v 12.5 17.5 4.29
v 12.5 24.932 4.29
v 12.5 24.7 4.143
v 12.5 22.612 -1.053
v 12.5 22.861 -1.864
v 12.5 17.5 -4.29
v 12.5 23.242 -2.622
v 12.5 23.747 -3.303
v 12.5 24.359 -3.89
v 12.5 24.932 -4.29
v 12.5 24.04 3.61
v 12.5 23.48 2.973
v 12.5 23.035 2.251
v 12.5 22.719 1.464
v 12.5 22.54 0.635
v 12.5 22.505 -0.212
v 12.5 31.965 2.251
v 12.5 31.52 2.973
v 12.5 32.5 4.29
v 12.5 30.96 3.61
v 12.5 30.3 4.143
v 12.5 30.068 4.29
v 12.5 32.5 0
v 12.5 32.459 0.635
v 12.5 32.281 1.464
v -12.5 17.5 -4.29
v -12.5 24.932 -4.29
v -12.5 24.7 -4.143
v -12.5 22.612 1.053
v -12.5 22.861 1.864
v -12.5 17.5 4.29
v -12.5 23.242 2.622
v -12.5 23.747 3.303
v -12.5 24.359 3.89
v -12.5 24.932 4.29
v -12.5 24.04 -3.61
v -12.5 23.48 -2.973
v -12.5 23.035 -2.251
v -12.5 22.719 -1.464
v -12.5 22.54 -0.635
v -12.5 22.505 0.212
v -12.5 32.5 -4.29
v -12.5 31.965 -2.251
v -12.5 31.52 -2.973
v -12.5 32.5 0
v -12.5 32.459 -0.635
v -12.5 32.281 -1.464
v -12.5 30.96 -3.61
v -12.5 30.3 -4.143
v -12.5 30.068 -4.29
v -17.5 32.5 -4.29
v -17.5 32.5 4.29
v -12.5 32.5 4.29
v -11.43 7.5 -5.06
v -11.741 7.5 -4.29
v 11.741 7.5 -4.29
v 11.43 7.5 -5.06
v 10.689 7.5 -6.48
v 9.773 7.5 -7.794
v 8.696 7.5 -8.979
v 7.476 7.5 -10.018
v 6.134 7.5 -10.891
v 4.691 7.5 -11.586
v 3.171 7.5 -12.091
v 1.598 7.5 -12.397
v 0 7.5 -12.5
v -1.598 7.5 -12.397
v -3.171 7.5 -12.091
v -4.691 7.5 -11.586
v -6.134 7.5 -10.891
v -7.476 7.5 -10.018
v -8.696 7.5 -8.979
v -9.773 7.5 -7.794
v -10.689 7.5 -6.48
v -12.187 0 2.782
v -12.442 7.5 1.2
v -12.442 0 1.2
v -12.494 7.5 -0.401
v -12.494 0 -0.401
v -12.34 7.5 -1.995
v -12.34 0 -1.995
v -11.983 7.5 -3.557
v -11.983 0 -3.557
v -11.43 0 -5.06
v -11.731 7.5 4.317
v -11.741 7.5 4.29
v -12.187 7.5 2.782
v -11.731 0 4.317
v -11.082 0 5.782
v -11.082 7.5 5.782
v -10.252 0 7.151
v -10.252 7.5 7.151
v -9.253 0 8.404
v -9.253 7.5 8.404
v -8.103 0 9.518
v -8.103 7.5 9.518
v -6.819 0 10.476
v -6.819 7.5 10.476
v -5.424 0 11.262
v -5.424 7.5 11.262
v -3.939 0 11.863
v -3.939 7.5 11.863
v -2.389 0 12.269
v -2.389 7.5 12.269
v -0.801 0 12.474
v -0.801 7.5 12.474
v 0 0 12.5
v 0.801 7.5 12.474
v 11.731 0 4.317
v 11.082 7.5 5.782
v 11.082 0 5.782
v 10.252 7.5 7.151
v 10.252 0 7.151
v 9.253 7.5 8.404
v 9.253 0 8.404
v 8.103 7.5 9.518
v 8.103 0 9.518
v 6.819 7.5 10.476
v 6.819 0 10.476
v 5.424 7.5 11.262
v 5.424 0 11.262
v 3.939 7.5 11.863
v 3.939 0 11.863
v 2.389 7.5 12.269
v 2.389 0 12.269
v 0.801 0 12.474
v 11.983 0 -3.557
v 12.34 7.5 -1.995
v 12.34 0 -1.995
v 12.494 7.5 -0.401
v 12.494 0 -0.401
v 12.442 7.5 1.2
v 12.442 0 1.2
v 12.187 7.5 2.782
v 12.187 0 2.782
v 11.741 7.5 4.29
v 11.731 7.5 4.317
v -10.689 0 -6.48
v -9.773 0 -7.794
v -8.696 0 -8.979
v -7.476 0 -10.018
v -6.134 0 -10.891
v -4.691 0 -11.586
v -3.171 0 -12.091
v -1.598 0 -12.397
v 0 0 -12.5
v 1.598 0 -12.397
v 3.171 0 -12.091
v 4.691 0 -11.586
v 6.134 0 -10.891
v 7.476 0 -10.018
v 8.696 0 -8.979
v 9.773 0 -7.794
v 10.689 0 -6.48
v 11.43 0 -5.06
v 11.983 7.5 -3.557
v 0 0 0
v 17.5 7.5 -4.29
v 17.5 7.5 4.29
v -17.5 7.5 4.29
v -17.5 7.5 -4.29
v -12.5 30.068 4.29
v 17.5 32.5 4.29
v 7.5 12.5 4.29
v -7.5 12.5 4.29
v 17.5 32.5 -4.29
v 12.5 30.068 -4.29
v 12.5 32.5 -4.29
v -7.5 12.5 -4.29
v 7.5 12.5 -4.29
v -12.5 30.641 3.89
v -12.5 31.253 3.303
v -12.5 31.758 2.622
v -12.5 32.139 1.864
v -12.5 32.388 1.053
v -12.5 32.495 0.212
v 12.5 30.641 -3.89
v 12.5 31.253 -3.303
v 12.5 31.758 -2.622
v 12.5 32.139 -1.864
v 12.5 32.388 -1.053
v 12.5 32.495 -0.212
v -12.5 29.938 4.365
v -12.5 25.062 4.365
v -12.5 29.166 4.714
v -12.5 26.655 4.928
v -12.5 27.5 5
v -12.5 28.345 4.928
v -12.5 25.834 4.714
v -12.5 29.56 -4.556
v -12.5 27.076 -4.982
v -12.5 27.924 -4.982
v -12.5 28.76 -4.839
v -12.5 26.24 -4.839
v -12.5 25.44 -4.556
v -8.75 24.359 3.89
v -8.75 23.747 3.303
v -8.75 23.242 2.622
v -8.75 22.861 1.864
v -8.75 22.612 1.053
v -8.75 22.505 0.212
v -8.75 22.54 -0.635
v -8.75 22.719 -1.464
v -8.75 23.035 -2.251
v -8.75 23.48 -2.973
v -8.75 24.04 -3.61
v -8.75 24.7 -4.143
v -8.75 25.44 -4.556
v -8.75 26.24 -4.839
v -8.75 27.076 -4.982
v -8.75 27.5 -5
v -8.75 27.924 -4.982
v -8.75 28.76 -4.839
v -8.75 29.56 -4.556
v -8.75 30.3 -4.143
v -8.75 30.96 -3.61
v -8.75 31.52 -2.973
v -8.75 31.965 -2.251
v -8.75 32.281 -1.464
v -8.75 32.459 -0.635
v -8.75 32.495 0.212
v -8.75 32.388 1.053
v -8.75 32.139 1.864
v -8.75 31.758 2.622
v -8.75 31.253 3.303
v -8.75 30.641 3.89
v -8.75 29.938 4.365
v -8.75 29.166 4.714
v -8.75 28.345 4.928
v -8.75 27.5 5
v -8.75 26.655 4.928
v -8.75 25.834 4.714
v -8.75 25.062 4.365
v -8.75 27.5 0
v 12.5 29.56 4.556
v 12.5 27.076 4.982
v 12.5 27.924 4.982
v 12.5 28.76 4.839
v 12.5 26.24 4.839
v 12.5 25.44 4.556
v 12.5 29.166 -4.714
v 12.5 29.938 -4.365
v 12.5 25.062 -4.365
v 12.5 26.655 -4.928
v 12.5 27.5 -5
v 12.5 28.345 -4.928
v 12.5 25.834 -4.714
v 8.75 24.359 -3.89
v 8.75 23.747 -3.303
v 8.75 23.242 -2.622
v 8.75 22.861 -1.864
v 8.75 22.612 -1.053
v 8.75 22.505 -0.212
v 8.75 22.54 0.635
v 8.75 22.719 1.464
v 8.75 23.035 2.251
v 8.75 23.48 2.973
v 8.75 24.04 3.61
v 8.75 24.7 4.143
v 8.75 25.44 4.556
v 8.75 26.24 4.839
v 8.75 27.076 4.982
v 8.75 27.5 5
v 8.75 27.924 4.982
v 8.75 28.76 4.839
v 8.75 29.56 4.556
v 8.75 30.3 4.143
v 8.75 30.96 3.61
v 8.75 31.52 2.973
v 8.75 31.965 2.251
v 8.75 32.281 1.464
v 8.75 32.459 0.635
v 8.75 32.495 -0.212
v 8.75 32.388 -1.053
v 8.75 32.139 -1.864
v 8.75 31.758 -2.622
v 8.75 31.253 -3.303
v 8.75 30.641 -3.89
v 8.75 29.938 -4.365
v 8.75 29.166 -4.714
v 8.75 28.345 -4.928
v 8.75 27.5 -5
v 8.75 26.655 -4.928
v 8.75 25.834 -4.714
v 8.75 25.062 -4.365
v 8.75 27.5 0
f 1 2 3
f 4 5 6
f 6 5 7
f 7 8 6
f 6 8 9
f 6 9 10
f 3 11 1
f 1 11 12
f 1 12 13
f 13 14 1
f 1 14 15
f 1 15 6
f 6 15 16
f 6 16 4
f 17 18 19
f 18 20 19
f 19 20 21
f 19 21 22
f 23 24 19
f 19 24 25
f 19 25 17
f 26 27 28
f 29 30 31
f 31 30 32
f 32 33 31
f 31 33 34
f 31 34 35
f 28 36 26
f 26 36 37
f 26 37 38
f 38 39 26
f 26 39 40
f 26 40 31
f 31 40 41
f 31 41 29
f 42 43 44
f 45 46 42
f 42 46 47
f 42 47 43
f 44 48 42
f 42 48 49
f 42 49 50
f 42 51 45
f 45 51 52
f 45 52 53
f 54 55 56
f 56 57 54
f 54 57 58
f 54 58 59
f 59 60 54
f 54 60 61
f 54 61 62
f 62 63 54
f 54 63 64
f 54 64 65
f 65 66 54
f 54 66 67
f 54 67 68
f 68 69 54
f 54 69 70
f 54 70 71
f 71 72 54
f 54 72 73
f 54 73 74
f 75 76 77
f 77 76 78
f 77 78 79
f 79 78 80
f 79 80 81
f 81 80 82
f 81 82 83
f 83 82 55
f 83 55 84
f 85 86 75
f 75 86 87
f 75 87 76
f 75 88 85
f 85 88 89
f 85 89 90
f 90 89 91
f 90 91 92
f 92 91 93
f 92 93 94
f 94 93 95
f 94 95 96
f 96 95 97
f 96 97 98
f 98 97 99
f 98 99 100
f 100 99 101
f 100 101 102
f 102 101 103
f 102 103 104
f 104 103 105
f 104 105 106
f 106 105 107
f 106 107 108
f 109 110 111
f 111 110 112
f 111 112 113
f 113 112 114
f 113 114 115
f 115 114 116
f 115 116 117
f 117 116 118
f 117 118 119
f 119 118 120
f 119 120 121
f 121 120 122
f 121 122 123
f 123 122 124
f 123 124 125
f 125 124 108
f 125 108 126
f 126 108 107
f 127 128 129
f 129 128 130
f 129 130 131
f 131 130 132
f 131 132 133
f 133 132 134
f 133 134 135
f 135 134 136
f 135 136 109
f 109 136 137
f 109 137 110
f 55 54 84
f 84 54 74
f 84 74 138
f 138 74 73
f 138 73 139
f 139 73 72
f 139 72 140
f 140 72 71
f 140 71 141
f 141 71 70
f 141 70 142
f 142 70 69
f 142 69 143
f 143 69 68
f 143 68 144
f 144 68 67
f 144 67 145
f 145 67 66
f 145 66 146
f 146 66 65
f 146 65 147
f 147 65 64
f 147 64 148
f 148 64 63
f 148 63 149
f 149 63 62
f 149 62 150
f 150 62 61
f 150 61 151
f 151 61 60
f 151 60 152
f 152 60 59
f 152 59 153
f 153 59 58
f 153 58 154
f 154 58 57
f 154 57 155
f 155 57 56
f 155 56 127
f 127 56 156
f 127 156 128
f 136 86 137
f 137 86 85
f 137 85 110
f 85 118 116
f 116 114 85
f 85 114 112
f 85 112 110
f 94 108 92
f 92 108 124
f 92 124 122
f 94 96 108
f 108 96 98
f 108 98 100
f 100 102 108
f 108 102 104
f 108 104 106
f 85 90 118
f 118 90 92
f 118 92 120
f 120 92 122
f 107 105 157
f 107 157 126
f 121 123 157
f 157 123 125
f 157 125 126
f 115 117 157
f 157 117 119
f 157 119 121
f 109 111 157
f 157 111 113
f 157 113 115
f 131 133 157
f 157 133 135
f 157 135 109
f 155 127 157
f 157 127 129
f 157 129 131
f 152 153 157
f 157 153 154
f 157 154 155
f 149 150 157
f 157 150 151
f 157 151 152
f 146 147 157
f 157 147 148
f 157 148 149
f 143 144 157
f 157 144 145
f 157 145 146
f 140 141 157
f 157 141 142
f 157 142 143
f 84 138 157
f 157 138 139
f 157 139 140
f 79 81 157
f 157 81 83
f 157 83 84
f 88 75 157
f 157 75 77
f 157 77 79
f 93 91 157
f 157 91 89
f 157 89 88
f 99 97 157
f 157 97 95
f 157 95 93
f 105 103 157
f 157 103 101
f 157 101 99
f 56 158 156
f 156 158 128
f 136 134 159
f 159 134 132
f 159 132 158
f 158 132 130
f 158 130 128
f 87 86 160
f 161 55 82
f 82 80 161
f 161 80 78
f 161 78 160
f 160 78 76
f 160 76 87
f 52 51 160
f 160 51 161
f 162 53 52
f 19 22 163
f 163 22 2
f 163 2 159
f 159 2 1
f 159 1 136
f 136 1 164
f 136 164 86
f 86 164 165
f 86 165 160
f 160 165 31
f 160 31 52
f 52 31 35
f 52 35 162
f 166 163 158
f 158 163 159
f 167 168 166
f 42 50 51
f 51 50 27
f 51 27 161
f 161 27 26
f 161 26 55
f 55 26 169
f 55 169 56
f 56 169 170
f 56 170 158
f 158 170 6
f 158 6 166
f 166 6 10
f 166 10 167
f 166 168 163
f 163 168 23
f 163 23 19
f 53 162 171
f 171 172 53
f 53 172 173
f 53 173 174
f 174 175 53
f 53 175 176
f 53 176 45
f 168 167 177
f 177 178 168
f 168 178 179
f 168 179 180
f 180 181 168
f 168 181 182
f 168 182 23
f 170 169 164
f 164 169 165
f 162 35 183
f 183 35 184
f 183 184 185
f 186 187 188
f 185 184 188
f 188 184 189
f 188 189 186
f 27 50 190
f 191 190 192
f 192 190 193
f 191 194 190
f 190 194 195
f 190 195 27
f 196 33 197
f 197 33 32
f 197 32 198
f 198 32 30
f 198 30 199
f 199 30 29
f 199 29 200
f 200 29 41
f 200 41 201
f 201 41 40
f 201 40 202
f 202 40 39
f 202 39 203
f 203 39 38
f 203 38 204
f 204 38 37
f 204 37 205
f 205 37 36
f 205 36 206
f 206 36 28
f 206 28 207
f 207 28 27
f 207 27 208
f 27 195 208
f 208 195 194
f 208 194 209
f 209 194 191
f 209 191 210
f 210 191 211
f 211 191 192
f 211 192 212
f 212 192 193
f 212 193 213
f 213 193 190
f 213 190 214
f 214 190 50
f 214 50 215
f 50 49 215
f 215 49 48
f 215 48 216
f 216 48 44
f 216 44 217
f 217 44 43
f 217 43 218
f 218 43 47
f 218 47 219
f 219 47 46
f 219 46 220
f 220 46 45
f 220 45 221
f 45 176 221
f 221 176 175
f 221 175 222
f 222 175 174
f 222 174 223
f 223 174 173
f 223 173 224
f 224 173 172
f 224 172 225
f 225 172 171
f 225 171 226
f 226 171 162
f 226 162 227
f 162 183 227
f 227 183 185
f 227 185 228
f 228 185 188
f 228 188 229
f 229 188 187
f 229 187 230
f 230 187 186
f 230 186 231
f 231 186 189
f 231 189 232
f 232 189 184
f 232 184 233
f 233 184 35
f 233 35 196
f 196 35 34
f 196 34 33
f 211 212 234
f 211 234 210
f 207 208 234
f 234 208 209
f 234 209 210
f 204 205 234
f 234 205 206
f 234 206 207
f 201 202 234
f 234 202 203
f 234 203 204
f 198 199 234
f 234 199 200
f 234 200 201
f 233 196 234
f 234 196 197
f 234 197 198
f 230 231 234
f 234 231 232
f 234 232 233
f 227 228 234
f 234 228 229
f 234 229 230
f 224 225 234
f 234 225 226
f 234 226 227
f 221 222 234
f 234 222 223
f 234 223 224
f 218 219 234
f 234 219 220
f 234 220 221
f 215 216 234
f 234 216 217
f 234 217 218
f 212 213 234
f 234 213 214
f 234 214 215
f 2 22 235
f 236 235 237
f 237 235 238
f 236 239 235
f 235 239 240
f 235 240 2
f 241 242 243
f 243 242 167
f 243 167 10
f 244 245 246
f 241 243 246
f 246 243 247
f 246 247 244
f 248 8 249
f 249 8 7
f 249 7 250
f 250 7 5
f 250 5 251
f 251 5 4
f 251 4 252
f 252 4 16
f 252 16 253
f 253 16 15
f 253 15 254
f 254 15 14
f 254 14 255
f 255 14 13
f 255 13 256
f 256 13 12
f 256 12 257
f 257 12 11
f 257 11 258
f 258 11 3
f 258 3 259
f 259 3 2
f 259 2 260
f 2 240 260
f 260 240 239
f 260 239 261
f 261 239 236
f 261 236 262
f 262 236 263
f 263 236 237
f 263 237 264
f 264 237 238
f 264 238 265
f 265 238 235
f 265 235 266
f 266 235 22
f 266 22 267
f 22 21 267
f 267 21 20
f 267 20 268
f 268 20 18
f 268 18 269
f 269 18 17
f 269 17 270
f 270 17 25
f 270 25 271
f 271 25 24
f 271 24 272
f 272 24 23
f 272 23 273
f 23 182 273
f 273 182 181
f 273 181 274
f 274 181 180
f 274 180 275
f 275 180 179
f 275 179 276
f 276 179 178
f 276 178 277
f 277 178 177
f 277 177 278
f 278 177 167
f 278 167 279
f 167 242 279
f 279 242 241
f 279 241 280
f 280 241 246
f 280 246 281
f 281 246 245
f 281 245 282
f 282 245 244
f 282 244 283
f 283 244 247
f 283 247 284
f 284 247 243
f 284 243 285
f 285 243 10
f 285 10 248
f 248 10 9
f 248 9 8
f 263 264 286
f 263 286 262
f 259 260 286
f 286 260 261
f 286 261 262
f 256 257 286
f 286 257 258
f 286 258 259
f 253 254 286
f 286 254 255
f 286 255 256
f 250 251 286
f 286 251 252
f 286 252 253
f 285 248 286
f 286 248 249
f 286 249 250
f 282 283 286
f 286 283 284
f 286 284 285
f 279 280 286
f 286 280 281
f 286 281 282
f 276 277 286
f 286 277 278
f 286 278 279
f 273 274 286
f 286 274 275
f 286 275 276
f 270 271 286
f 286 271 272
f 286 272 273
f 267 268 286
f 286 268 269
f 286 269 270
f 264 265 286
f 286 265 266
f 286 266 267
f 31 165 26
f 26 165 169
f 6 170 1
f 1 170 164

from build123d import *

# Parameters (mm, degrees)
SKETCH1_R           = 12.5
BOSS_EXTRUDE1_DEPTH = 7.5
SKETCH2_W           = 35
SKETCH2_H           = 8.580767914
BOSS_EXTRUDE2_DEPTH = 25
SKETCH3_W           = 25
SKETCH3_H           = 8.580767914
CUT_EXTRUDE1_DEPTH  = 20
SKETCH4_R           = 5
BOSS_EXTRUDE3_DEPTH = 3.75
SKETCH5_R           = 5
BOSS_EXTRUDE4_DEPTH = 3.75
CHAMFER1_SIZE       = 5
CHAMFER2_SIZE       = 5


with BuildPart() as part:
    # Sketch1 → Boss-Extrude1 (new body)
    with BuildSketch(Plane(origin=(0, 0, 0), x_dir=(1, 0, 0), z_dir=(0, 1, 0))):
        Circle(SKETCH1_R)
    extrude(amount=BOSS_EXTRUDE1_DEPTH)

    # Sketch2 → Boss-Extrude2 (add)
    with BuildSketch(Plane(origin=(0, 7.5, 0), x_dir=(1, 0, 0), z_dir=(0, 1, 0))):
        Rectangle(SKETCH2_W, SKETCH2_H)
    extrude(amount=BOSS_EXTRUDE2_DEPTH)

    # Sketch3 → Cut-Extrude1 (cut)
    with BuildSketch(Plane(origin=(0, 32.5, 0), x_dir=(1, 0, 0), z_dir=(0, 1, 0))):
        Rectangle(SKETCH3_W, SKETCH3_H)
    extrude(amount=-CUT_EXTRUDE1_DEPTH, mode=Mode.SUBTRACT)

    # Sketch4 → Boss-Extrude3 (add)
    with BuildSketch(Plane(origin=(-12.5, 0, 0), x_dir=(0, 0, -1), z_dir=(1, 0, 0))):
        with Locations((0, 27.5)):
            Circle(SKETCH4_R)
    extrude(amount=BOSS_EXTRUDE3_DEPTH)

    # Sketch5 → Boss-Extrude4 (add)
    with BuildSketch(Plane.ZY.offset(-12.5)):
        with Locations((0, 27.5)):
            Circle(SKETCH5_R)
    extrude(amount=BOSS_EXTRUDE4_DEPTH)

    # Chamfer1
    chamfer1_edges = [part.edges().sort_by_distance(p)[0] for p in [
        (-12.5, 12.5, 0),
    ]]
    chamfer(chamfer1_edges, length=CHAMFER1_SIZE)

    # Chamfer2
    chamfer2_edges = [part.edges().sort_by_distance(p)[0] for p in [
        (12.5, 12.5, 0),
    ]]
    chamfer(chamfer2_edges, length=CHAMFER2_SIZE)


solid = part.part
